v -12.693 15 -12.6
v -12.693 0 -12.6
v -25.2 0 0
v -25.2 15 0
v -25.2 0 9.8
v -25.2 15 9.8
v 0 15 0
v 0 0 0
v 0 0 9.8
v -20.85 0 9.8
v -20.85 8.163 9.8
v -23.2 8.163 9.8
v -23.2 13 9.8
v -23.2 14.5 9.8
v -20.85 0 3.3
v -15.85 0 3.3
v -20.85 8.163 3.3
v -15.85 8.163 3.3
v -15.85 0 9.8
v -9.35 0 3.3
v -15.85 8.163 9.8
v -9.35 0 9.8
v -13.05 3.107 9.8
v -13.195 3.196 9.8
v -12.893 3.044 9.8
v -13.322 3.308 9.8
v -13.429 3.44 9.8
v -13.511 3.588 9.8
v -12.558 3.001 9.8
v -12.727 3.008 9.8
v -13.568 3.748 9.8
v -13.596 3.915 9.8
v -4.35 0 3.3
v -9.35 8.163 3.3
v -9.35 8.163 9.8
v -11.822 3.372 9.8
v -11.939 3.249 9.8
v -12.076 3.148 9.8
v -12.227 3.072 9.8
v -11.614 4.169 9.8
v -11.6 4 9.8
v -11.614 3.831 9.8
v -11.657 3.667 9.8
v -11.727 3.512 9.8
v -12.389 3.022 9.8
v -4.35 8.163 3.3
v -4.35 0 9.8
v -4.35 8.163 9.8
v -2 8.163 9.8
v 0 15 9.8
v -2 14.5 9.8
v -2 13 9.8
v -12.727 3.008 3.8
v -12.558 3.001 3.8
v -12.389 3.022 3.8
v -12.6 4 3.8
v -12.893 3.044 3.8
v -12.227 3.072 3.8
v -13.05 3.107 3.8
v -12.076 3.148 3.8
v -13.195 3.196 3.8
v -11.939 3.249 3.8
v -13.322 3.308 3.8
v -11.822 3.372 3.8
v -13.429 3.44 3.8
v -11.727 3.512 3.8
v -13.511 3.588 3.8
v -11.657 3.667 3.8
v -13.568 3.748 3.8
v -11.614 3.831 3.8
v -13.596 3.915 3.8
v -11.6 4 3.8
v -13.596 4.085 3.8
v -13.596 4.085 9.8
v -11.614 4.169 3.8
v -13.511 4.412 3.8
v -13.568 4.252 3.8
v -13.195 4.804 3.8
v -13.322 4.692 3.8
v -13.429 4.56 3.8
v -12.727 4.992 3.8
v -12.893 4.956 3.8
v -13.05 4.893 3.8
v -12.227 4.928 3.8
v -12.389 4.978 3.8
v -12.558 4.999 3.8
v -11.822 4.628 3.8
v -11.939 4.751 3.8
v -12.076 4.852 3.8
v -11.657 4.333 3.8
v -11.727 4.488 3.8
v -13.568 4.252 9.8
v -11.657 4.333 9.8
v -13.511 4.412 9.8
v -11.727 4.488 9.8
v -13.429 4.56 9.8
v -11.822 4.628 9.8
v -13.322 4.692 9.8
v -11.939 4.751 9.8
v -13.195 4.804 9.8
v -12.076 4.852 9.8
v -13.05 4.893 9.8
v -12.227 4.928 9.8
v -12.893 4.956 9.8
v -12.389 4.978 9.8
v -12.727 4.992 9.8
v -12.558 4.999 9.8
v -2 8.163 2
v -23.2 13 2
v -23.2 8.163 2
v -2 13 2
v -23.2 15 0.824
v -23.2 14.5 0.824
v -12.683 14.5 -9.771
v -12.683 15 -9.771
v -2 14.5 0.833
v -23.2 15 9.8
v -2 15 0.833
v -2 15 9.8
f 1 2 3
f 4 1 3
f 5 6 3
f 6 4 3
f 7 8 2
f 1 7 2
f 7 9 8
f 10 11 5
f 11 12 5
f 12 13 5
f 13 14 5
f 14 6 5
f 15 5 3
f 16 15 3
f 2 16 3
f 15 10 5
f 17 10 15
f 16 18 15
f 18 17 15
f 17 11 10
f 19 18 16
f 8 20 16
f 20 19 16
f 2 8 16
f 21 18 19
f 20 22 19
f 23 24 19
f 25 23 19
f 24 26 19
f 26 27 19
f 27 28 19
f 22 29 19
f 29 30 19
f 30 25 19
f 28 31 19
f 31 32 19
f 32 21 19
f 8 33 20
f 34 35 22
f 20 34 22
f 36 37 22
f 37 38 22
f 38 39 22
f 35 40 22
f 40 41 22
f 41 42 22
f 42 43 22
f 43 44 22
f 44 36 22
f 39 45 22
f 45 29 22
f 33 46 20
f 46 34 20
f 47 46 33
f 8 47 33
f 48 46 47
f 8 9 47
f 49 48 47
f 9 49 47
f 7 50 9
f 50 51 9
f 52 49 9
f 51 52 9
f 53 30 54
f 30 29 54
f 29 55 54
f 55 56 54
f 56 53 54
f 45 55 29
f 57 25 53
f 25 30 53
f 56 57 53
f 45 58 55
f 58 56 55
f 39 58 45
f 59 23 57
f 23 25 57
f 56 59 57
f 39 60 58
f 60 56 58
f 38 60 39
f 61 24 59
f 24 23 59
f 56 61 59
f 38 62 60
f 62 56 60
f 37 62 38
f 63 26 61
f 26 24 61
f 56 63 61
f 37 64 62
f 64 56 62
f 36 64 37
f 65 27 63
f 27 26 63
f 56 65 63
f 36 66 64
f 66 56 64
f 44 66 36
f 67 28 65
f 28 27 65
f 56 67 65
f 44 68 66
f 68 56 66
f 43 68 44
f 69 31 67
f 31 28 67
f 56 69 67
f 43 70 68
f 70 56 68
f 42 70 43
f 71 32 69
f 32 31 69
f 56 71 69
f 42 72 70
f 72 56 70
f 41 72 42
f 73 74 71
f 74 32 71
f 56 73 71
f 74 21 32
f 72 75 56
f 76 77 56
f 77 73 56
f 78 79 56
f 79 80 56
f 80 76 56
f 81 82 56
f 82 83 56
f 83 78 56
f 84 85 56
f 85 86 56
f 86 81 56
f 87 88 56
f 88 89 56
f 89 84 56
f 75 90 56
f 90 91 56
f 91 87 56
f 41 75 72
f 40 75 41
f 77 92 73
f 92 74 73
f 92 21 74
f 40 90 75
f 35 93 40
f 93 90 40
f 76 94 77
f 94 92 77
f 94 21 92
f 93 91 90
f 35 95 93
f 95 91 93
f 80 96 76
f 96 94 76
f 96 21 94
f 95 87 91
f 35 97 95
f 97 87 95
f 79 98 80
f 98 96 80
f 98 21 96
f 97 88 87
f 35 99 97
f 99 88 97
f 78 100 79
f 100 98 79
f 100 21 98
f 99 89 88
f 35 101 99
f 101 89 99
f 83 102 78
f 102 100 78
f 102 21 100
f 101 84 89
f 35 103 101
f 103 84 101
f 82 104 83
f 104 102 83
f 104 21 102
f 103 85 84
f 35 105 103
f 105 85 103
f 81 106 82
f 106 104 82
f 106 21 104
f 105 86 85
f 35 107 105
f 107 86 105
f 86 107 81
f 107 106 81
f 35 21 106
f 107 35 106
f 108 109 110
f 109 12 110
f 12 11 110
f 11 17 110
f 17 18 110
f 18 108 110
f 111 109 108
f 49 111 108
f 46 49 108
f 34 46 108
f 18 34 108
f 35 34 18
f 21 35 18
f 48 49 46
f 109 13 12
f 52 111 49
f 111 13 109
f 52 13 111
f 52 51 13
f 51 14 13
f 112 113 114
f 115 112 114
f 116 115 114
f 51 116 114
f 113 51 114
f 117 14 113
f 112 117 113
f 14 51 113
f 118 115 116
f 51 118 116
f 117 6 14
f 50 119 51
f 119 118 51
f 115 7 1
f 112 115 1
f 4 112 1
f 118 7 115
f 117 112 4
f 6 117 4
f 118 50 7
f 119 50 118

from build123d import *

# Parameters (mm, degrees)
SKETCH2_W           = 25.2
SKETCH2_H           = 15
BOSS_EXTRUDE2_DEPTH = 2
SKETCH3_W           = 2
SKETCH3_H           = 13
BOSS_EXTRUDE3_DEPTH = 7.8
BOSS_EXTRUDE4_DEPTH = 15
SKETCH5_W           = 6.5
SKETCH5_H           = 8.163083502
SKETCH5_W_2         = 2.35
BOSS_EXTRUDE5_DEPTH = 7.8
SKETCH6_W           = 5
SKETCH6_H           = 8.163083502
BOSS_EXTRUDE6_DEPTH = 1.3
SKETCH8_W           = 21.2
SKETCH8_H           = 2
CUT_EXTRUDE1_DEPTH  = 0.5
SKETCH10_R          = 1
CUT_EXTRUDE4_DEPTH  = 6


with BuildPart() as part:
    # Sketch2 → Boss-Extrude2 (new body)
    with BuildSketch(Plane.XY):
        with Locations((-12.6, 7.5)):
            Rectangle(SKETCH2_W, SKETCH2_H)
    extrude(amount=BOSS_EXTRUDE2_DEPTH)

    # Sketch3 → Boss-Extrude3 (add)
    with BuildSketch(Plane.XY.offset(2)):
        Polygon((-25.2, 15), (-25.2, 0), (-23.2, 0), (-23.2, 13), (-23.2, 15), align=None)
        Polygon((-23.2, 15), (-23.2, 13), (-2, 13), (0, 13), (0, 15), align=None)
        with Locations((-1, 6.5)):
            Rectangle(SKETCH3_W, SKETCH3_H)
    extrude(amount=BOSS_EXTRUDE3_DEPTH)

    # Sketch4 → Boss-Extrude4 (add, through all)
    with BuildSketch(Plane(origin=(0, 15, 0), x_dir=(1, 0, 0), z_dir=(0, 1, 0))):
        Polygon((0, 0), (-12.693339498, 12.599654271), (-25.2, 0), align=None)
    extrude(amount=-BOSS_EXTRUDE4_DEPTH)

    # Sketch5 → Boss-Extrude5 (add)
    with BuildSketch(Plane.XY.offset(2)):
        with Locations((-12.6, 4.081541751)):
            Rectangle(SKETCH5_W, SKETCH5_H)
        with Locations((-3.175, 4.081541751)):
            Rectangle(SKETCH5_W_2, SKETCH5_H)
        with Locations((-22.025, 4.081541751)):
            Rectangle(SKETCH5_W_2, SKETCH5_H)
    extrude(amount=BOSS_EXTRUDE5_DEPTH)

    # Sketch6 → Boss-Extrude6 (add)
    with BuildSketch(Plane.XY.offset(2)):
        with Locations((-18.35, 4.081541751)):
            Rectangle(SKETCH6_W, SKETCH6_H)
        with Locations((-6.85, 4.081541751)):
            Rectangle(SKETCH6_W, SKETCH6_H)
    extrude(amount=BOSS_EXTRUDE6_DEPTH)

    # Sketch8 → Cut-Extrude1 (cut)
    with BuildSketch(Plane(origin=(0, 15, 0), x_dir=(1, 0, 0), z_dir=(0, 1, 0))):
        Polygon((-12.682863078, 9.771246548), (-23.2, -0.824090961), (-23.2, -7.8), (-2, -7.8), (-2, -0.832769946), align=None)
        with Locations((-12.6, -8.8)):
            Rectangle(SKETCH8_W, SKETCH8_H)
    extrude(amount=-CUT_EXTRUDE1_DEPTH, mode=Mode.SUBTRACT)

    # Sketch10 → Cut-Extrude4 (cut)
    with BuildSketch(Plane.XY.offset(9.8)):
        with Locations((-12.6, 4)):
            Circle(SKETCH10_R)
    extrude(amount=-CUT_EXTRUDE4_DEPTH, mode=Mode.SUBTRACT)


solid = part.part
